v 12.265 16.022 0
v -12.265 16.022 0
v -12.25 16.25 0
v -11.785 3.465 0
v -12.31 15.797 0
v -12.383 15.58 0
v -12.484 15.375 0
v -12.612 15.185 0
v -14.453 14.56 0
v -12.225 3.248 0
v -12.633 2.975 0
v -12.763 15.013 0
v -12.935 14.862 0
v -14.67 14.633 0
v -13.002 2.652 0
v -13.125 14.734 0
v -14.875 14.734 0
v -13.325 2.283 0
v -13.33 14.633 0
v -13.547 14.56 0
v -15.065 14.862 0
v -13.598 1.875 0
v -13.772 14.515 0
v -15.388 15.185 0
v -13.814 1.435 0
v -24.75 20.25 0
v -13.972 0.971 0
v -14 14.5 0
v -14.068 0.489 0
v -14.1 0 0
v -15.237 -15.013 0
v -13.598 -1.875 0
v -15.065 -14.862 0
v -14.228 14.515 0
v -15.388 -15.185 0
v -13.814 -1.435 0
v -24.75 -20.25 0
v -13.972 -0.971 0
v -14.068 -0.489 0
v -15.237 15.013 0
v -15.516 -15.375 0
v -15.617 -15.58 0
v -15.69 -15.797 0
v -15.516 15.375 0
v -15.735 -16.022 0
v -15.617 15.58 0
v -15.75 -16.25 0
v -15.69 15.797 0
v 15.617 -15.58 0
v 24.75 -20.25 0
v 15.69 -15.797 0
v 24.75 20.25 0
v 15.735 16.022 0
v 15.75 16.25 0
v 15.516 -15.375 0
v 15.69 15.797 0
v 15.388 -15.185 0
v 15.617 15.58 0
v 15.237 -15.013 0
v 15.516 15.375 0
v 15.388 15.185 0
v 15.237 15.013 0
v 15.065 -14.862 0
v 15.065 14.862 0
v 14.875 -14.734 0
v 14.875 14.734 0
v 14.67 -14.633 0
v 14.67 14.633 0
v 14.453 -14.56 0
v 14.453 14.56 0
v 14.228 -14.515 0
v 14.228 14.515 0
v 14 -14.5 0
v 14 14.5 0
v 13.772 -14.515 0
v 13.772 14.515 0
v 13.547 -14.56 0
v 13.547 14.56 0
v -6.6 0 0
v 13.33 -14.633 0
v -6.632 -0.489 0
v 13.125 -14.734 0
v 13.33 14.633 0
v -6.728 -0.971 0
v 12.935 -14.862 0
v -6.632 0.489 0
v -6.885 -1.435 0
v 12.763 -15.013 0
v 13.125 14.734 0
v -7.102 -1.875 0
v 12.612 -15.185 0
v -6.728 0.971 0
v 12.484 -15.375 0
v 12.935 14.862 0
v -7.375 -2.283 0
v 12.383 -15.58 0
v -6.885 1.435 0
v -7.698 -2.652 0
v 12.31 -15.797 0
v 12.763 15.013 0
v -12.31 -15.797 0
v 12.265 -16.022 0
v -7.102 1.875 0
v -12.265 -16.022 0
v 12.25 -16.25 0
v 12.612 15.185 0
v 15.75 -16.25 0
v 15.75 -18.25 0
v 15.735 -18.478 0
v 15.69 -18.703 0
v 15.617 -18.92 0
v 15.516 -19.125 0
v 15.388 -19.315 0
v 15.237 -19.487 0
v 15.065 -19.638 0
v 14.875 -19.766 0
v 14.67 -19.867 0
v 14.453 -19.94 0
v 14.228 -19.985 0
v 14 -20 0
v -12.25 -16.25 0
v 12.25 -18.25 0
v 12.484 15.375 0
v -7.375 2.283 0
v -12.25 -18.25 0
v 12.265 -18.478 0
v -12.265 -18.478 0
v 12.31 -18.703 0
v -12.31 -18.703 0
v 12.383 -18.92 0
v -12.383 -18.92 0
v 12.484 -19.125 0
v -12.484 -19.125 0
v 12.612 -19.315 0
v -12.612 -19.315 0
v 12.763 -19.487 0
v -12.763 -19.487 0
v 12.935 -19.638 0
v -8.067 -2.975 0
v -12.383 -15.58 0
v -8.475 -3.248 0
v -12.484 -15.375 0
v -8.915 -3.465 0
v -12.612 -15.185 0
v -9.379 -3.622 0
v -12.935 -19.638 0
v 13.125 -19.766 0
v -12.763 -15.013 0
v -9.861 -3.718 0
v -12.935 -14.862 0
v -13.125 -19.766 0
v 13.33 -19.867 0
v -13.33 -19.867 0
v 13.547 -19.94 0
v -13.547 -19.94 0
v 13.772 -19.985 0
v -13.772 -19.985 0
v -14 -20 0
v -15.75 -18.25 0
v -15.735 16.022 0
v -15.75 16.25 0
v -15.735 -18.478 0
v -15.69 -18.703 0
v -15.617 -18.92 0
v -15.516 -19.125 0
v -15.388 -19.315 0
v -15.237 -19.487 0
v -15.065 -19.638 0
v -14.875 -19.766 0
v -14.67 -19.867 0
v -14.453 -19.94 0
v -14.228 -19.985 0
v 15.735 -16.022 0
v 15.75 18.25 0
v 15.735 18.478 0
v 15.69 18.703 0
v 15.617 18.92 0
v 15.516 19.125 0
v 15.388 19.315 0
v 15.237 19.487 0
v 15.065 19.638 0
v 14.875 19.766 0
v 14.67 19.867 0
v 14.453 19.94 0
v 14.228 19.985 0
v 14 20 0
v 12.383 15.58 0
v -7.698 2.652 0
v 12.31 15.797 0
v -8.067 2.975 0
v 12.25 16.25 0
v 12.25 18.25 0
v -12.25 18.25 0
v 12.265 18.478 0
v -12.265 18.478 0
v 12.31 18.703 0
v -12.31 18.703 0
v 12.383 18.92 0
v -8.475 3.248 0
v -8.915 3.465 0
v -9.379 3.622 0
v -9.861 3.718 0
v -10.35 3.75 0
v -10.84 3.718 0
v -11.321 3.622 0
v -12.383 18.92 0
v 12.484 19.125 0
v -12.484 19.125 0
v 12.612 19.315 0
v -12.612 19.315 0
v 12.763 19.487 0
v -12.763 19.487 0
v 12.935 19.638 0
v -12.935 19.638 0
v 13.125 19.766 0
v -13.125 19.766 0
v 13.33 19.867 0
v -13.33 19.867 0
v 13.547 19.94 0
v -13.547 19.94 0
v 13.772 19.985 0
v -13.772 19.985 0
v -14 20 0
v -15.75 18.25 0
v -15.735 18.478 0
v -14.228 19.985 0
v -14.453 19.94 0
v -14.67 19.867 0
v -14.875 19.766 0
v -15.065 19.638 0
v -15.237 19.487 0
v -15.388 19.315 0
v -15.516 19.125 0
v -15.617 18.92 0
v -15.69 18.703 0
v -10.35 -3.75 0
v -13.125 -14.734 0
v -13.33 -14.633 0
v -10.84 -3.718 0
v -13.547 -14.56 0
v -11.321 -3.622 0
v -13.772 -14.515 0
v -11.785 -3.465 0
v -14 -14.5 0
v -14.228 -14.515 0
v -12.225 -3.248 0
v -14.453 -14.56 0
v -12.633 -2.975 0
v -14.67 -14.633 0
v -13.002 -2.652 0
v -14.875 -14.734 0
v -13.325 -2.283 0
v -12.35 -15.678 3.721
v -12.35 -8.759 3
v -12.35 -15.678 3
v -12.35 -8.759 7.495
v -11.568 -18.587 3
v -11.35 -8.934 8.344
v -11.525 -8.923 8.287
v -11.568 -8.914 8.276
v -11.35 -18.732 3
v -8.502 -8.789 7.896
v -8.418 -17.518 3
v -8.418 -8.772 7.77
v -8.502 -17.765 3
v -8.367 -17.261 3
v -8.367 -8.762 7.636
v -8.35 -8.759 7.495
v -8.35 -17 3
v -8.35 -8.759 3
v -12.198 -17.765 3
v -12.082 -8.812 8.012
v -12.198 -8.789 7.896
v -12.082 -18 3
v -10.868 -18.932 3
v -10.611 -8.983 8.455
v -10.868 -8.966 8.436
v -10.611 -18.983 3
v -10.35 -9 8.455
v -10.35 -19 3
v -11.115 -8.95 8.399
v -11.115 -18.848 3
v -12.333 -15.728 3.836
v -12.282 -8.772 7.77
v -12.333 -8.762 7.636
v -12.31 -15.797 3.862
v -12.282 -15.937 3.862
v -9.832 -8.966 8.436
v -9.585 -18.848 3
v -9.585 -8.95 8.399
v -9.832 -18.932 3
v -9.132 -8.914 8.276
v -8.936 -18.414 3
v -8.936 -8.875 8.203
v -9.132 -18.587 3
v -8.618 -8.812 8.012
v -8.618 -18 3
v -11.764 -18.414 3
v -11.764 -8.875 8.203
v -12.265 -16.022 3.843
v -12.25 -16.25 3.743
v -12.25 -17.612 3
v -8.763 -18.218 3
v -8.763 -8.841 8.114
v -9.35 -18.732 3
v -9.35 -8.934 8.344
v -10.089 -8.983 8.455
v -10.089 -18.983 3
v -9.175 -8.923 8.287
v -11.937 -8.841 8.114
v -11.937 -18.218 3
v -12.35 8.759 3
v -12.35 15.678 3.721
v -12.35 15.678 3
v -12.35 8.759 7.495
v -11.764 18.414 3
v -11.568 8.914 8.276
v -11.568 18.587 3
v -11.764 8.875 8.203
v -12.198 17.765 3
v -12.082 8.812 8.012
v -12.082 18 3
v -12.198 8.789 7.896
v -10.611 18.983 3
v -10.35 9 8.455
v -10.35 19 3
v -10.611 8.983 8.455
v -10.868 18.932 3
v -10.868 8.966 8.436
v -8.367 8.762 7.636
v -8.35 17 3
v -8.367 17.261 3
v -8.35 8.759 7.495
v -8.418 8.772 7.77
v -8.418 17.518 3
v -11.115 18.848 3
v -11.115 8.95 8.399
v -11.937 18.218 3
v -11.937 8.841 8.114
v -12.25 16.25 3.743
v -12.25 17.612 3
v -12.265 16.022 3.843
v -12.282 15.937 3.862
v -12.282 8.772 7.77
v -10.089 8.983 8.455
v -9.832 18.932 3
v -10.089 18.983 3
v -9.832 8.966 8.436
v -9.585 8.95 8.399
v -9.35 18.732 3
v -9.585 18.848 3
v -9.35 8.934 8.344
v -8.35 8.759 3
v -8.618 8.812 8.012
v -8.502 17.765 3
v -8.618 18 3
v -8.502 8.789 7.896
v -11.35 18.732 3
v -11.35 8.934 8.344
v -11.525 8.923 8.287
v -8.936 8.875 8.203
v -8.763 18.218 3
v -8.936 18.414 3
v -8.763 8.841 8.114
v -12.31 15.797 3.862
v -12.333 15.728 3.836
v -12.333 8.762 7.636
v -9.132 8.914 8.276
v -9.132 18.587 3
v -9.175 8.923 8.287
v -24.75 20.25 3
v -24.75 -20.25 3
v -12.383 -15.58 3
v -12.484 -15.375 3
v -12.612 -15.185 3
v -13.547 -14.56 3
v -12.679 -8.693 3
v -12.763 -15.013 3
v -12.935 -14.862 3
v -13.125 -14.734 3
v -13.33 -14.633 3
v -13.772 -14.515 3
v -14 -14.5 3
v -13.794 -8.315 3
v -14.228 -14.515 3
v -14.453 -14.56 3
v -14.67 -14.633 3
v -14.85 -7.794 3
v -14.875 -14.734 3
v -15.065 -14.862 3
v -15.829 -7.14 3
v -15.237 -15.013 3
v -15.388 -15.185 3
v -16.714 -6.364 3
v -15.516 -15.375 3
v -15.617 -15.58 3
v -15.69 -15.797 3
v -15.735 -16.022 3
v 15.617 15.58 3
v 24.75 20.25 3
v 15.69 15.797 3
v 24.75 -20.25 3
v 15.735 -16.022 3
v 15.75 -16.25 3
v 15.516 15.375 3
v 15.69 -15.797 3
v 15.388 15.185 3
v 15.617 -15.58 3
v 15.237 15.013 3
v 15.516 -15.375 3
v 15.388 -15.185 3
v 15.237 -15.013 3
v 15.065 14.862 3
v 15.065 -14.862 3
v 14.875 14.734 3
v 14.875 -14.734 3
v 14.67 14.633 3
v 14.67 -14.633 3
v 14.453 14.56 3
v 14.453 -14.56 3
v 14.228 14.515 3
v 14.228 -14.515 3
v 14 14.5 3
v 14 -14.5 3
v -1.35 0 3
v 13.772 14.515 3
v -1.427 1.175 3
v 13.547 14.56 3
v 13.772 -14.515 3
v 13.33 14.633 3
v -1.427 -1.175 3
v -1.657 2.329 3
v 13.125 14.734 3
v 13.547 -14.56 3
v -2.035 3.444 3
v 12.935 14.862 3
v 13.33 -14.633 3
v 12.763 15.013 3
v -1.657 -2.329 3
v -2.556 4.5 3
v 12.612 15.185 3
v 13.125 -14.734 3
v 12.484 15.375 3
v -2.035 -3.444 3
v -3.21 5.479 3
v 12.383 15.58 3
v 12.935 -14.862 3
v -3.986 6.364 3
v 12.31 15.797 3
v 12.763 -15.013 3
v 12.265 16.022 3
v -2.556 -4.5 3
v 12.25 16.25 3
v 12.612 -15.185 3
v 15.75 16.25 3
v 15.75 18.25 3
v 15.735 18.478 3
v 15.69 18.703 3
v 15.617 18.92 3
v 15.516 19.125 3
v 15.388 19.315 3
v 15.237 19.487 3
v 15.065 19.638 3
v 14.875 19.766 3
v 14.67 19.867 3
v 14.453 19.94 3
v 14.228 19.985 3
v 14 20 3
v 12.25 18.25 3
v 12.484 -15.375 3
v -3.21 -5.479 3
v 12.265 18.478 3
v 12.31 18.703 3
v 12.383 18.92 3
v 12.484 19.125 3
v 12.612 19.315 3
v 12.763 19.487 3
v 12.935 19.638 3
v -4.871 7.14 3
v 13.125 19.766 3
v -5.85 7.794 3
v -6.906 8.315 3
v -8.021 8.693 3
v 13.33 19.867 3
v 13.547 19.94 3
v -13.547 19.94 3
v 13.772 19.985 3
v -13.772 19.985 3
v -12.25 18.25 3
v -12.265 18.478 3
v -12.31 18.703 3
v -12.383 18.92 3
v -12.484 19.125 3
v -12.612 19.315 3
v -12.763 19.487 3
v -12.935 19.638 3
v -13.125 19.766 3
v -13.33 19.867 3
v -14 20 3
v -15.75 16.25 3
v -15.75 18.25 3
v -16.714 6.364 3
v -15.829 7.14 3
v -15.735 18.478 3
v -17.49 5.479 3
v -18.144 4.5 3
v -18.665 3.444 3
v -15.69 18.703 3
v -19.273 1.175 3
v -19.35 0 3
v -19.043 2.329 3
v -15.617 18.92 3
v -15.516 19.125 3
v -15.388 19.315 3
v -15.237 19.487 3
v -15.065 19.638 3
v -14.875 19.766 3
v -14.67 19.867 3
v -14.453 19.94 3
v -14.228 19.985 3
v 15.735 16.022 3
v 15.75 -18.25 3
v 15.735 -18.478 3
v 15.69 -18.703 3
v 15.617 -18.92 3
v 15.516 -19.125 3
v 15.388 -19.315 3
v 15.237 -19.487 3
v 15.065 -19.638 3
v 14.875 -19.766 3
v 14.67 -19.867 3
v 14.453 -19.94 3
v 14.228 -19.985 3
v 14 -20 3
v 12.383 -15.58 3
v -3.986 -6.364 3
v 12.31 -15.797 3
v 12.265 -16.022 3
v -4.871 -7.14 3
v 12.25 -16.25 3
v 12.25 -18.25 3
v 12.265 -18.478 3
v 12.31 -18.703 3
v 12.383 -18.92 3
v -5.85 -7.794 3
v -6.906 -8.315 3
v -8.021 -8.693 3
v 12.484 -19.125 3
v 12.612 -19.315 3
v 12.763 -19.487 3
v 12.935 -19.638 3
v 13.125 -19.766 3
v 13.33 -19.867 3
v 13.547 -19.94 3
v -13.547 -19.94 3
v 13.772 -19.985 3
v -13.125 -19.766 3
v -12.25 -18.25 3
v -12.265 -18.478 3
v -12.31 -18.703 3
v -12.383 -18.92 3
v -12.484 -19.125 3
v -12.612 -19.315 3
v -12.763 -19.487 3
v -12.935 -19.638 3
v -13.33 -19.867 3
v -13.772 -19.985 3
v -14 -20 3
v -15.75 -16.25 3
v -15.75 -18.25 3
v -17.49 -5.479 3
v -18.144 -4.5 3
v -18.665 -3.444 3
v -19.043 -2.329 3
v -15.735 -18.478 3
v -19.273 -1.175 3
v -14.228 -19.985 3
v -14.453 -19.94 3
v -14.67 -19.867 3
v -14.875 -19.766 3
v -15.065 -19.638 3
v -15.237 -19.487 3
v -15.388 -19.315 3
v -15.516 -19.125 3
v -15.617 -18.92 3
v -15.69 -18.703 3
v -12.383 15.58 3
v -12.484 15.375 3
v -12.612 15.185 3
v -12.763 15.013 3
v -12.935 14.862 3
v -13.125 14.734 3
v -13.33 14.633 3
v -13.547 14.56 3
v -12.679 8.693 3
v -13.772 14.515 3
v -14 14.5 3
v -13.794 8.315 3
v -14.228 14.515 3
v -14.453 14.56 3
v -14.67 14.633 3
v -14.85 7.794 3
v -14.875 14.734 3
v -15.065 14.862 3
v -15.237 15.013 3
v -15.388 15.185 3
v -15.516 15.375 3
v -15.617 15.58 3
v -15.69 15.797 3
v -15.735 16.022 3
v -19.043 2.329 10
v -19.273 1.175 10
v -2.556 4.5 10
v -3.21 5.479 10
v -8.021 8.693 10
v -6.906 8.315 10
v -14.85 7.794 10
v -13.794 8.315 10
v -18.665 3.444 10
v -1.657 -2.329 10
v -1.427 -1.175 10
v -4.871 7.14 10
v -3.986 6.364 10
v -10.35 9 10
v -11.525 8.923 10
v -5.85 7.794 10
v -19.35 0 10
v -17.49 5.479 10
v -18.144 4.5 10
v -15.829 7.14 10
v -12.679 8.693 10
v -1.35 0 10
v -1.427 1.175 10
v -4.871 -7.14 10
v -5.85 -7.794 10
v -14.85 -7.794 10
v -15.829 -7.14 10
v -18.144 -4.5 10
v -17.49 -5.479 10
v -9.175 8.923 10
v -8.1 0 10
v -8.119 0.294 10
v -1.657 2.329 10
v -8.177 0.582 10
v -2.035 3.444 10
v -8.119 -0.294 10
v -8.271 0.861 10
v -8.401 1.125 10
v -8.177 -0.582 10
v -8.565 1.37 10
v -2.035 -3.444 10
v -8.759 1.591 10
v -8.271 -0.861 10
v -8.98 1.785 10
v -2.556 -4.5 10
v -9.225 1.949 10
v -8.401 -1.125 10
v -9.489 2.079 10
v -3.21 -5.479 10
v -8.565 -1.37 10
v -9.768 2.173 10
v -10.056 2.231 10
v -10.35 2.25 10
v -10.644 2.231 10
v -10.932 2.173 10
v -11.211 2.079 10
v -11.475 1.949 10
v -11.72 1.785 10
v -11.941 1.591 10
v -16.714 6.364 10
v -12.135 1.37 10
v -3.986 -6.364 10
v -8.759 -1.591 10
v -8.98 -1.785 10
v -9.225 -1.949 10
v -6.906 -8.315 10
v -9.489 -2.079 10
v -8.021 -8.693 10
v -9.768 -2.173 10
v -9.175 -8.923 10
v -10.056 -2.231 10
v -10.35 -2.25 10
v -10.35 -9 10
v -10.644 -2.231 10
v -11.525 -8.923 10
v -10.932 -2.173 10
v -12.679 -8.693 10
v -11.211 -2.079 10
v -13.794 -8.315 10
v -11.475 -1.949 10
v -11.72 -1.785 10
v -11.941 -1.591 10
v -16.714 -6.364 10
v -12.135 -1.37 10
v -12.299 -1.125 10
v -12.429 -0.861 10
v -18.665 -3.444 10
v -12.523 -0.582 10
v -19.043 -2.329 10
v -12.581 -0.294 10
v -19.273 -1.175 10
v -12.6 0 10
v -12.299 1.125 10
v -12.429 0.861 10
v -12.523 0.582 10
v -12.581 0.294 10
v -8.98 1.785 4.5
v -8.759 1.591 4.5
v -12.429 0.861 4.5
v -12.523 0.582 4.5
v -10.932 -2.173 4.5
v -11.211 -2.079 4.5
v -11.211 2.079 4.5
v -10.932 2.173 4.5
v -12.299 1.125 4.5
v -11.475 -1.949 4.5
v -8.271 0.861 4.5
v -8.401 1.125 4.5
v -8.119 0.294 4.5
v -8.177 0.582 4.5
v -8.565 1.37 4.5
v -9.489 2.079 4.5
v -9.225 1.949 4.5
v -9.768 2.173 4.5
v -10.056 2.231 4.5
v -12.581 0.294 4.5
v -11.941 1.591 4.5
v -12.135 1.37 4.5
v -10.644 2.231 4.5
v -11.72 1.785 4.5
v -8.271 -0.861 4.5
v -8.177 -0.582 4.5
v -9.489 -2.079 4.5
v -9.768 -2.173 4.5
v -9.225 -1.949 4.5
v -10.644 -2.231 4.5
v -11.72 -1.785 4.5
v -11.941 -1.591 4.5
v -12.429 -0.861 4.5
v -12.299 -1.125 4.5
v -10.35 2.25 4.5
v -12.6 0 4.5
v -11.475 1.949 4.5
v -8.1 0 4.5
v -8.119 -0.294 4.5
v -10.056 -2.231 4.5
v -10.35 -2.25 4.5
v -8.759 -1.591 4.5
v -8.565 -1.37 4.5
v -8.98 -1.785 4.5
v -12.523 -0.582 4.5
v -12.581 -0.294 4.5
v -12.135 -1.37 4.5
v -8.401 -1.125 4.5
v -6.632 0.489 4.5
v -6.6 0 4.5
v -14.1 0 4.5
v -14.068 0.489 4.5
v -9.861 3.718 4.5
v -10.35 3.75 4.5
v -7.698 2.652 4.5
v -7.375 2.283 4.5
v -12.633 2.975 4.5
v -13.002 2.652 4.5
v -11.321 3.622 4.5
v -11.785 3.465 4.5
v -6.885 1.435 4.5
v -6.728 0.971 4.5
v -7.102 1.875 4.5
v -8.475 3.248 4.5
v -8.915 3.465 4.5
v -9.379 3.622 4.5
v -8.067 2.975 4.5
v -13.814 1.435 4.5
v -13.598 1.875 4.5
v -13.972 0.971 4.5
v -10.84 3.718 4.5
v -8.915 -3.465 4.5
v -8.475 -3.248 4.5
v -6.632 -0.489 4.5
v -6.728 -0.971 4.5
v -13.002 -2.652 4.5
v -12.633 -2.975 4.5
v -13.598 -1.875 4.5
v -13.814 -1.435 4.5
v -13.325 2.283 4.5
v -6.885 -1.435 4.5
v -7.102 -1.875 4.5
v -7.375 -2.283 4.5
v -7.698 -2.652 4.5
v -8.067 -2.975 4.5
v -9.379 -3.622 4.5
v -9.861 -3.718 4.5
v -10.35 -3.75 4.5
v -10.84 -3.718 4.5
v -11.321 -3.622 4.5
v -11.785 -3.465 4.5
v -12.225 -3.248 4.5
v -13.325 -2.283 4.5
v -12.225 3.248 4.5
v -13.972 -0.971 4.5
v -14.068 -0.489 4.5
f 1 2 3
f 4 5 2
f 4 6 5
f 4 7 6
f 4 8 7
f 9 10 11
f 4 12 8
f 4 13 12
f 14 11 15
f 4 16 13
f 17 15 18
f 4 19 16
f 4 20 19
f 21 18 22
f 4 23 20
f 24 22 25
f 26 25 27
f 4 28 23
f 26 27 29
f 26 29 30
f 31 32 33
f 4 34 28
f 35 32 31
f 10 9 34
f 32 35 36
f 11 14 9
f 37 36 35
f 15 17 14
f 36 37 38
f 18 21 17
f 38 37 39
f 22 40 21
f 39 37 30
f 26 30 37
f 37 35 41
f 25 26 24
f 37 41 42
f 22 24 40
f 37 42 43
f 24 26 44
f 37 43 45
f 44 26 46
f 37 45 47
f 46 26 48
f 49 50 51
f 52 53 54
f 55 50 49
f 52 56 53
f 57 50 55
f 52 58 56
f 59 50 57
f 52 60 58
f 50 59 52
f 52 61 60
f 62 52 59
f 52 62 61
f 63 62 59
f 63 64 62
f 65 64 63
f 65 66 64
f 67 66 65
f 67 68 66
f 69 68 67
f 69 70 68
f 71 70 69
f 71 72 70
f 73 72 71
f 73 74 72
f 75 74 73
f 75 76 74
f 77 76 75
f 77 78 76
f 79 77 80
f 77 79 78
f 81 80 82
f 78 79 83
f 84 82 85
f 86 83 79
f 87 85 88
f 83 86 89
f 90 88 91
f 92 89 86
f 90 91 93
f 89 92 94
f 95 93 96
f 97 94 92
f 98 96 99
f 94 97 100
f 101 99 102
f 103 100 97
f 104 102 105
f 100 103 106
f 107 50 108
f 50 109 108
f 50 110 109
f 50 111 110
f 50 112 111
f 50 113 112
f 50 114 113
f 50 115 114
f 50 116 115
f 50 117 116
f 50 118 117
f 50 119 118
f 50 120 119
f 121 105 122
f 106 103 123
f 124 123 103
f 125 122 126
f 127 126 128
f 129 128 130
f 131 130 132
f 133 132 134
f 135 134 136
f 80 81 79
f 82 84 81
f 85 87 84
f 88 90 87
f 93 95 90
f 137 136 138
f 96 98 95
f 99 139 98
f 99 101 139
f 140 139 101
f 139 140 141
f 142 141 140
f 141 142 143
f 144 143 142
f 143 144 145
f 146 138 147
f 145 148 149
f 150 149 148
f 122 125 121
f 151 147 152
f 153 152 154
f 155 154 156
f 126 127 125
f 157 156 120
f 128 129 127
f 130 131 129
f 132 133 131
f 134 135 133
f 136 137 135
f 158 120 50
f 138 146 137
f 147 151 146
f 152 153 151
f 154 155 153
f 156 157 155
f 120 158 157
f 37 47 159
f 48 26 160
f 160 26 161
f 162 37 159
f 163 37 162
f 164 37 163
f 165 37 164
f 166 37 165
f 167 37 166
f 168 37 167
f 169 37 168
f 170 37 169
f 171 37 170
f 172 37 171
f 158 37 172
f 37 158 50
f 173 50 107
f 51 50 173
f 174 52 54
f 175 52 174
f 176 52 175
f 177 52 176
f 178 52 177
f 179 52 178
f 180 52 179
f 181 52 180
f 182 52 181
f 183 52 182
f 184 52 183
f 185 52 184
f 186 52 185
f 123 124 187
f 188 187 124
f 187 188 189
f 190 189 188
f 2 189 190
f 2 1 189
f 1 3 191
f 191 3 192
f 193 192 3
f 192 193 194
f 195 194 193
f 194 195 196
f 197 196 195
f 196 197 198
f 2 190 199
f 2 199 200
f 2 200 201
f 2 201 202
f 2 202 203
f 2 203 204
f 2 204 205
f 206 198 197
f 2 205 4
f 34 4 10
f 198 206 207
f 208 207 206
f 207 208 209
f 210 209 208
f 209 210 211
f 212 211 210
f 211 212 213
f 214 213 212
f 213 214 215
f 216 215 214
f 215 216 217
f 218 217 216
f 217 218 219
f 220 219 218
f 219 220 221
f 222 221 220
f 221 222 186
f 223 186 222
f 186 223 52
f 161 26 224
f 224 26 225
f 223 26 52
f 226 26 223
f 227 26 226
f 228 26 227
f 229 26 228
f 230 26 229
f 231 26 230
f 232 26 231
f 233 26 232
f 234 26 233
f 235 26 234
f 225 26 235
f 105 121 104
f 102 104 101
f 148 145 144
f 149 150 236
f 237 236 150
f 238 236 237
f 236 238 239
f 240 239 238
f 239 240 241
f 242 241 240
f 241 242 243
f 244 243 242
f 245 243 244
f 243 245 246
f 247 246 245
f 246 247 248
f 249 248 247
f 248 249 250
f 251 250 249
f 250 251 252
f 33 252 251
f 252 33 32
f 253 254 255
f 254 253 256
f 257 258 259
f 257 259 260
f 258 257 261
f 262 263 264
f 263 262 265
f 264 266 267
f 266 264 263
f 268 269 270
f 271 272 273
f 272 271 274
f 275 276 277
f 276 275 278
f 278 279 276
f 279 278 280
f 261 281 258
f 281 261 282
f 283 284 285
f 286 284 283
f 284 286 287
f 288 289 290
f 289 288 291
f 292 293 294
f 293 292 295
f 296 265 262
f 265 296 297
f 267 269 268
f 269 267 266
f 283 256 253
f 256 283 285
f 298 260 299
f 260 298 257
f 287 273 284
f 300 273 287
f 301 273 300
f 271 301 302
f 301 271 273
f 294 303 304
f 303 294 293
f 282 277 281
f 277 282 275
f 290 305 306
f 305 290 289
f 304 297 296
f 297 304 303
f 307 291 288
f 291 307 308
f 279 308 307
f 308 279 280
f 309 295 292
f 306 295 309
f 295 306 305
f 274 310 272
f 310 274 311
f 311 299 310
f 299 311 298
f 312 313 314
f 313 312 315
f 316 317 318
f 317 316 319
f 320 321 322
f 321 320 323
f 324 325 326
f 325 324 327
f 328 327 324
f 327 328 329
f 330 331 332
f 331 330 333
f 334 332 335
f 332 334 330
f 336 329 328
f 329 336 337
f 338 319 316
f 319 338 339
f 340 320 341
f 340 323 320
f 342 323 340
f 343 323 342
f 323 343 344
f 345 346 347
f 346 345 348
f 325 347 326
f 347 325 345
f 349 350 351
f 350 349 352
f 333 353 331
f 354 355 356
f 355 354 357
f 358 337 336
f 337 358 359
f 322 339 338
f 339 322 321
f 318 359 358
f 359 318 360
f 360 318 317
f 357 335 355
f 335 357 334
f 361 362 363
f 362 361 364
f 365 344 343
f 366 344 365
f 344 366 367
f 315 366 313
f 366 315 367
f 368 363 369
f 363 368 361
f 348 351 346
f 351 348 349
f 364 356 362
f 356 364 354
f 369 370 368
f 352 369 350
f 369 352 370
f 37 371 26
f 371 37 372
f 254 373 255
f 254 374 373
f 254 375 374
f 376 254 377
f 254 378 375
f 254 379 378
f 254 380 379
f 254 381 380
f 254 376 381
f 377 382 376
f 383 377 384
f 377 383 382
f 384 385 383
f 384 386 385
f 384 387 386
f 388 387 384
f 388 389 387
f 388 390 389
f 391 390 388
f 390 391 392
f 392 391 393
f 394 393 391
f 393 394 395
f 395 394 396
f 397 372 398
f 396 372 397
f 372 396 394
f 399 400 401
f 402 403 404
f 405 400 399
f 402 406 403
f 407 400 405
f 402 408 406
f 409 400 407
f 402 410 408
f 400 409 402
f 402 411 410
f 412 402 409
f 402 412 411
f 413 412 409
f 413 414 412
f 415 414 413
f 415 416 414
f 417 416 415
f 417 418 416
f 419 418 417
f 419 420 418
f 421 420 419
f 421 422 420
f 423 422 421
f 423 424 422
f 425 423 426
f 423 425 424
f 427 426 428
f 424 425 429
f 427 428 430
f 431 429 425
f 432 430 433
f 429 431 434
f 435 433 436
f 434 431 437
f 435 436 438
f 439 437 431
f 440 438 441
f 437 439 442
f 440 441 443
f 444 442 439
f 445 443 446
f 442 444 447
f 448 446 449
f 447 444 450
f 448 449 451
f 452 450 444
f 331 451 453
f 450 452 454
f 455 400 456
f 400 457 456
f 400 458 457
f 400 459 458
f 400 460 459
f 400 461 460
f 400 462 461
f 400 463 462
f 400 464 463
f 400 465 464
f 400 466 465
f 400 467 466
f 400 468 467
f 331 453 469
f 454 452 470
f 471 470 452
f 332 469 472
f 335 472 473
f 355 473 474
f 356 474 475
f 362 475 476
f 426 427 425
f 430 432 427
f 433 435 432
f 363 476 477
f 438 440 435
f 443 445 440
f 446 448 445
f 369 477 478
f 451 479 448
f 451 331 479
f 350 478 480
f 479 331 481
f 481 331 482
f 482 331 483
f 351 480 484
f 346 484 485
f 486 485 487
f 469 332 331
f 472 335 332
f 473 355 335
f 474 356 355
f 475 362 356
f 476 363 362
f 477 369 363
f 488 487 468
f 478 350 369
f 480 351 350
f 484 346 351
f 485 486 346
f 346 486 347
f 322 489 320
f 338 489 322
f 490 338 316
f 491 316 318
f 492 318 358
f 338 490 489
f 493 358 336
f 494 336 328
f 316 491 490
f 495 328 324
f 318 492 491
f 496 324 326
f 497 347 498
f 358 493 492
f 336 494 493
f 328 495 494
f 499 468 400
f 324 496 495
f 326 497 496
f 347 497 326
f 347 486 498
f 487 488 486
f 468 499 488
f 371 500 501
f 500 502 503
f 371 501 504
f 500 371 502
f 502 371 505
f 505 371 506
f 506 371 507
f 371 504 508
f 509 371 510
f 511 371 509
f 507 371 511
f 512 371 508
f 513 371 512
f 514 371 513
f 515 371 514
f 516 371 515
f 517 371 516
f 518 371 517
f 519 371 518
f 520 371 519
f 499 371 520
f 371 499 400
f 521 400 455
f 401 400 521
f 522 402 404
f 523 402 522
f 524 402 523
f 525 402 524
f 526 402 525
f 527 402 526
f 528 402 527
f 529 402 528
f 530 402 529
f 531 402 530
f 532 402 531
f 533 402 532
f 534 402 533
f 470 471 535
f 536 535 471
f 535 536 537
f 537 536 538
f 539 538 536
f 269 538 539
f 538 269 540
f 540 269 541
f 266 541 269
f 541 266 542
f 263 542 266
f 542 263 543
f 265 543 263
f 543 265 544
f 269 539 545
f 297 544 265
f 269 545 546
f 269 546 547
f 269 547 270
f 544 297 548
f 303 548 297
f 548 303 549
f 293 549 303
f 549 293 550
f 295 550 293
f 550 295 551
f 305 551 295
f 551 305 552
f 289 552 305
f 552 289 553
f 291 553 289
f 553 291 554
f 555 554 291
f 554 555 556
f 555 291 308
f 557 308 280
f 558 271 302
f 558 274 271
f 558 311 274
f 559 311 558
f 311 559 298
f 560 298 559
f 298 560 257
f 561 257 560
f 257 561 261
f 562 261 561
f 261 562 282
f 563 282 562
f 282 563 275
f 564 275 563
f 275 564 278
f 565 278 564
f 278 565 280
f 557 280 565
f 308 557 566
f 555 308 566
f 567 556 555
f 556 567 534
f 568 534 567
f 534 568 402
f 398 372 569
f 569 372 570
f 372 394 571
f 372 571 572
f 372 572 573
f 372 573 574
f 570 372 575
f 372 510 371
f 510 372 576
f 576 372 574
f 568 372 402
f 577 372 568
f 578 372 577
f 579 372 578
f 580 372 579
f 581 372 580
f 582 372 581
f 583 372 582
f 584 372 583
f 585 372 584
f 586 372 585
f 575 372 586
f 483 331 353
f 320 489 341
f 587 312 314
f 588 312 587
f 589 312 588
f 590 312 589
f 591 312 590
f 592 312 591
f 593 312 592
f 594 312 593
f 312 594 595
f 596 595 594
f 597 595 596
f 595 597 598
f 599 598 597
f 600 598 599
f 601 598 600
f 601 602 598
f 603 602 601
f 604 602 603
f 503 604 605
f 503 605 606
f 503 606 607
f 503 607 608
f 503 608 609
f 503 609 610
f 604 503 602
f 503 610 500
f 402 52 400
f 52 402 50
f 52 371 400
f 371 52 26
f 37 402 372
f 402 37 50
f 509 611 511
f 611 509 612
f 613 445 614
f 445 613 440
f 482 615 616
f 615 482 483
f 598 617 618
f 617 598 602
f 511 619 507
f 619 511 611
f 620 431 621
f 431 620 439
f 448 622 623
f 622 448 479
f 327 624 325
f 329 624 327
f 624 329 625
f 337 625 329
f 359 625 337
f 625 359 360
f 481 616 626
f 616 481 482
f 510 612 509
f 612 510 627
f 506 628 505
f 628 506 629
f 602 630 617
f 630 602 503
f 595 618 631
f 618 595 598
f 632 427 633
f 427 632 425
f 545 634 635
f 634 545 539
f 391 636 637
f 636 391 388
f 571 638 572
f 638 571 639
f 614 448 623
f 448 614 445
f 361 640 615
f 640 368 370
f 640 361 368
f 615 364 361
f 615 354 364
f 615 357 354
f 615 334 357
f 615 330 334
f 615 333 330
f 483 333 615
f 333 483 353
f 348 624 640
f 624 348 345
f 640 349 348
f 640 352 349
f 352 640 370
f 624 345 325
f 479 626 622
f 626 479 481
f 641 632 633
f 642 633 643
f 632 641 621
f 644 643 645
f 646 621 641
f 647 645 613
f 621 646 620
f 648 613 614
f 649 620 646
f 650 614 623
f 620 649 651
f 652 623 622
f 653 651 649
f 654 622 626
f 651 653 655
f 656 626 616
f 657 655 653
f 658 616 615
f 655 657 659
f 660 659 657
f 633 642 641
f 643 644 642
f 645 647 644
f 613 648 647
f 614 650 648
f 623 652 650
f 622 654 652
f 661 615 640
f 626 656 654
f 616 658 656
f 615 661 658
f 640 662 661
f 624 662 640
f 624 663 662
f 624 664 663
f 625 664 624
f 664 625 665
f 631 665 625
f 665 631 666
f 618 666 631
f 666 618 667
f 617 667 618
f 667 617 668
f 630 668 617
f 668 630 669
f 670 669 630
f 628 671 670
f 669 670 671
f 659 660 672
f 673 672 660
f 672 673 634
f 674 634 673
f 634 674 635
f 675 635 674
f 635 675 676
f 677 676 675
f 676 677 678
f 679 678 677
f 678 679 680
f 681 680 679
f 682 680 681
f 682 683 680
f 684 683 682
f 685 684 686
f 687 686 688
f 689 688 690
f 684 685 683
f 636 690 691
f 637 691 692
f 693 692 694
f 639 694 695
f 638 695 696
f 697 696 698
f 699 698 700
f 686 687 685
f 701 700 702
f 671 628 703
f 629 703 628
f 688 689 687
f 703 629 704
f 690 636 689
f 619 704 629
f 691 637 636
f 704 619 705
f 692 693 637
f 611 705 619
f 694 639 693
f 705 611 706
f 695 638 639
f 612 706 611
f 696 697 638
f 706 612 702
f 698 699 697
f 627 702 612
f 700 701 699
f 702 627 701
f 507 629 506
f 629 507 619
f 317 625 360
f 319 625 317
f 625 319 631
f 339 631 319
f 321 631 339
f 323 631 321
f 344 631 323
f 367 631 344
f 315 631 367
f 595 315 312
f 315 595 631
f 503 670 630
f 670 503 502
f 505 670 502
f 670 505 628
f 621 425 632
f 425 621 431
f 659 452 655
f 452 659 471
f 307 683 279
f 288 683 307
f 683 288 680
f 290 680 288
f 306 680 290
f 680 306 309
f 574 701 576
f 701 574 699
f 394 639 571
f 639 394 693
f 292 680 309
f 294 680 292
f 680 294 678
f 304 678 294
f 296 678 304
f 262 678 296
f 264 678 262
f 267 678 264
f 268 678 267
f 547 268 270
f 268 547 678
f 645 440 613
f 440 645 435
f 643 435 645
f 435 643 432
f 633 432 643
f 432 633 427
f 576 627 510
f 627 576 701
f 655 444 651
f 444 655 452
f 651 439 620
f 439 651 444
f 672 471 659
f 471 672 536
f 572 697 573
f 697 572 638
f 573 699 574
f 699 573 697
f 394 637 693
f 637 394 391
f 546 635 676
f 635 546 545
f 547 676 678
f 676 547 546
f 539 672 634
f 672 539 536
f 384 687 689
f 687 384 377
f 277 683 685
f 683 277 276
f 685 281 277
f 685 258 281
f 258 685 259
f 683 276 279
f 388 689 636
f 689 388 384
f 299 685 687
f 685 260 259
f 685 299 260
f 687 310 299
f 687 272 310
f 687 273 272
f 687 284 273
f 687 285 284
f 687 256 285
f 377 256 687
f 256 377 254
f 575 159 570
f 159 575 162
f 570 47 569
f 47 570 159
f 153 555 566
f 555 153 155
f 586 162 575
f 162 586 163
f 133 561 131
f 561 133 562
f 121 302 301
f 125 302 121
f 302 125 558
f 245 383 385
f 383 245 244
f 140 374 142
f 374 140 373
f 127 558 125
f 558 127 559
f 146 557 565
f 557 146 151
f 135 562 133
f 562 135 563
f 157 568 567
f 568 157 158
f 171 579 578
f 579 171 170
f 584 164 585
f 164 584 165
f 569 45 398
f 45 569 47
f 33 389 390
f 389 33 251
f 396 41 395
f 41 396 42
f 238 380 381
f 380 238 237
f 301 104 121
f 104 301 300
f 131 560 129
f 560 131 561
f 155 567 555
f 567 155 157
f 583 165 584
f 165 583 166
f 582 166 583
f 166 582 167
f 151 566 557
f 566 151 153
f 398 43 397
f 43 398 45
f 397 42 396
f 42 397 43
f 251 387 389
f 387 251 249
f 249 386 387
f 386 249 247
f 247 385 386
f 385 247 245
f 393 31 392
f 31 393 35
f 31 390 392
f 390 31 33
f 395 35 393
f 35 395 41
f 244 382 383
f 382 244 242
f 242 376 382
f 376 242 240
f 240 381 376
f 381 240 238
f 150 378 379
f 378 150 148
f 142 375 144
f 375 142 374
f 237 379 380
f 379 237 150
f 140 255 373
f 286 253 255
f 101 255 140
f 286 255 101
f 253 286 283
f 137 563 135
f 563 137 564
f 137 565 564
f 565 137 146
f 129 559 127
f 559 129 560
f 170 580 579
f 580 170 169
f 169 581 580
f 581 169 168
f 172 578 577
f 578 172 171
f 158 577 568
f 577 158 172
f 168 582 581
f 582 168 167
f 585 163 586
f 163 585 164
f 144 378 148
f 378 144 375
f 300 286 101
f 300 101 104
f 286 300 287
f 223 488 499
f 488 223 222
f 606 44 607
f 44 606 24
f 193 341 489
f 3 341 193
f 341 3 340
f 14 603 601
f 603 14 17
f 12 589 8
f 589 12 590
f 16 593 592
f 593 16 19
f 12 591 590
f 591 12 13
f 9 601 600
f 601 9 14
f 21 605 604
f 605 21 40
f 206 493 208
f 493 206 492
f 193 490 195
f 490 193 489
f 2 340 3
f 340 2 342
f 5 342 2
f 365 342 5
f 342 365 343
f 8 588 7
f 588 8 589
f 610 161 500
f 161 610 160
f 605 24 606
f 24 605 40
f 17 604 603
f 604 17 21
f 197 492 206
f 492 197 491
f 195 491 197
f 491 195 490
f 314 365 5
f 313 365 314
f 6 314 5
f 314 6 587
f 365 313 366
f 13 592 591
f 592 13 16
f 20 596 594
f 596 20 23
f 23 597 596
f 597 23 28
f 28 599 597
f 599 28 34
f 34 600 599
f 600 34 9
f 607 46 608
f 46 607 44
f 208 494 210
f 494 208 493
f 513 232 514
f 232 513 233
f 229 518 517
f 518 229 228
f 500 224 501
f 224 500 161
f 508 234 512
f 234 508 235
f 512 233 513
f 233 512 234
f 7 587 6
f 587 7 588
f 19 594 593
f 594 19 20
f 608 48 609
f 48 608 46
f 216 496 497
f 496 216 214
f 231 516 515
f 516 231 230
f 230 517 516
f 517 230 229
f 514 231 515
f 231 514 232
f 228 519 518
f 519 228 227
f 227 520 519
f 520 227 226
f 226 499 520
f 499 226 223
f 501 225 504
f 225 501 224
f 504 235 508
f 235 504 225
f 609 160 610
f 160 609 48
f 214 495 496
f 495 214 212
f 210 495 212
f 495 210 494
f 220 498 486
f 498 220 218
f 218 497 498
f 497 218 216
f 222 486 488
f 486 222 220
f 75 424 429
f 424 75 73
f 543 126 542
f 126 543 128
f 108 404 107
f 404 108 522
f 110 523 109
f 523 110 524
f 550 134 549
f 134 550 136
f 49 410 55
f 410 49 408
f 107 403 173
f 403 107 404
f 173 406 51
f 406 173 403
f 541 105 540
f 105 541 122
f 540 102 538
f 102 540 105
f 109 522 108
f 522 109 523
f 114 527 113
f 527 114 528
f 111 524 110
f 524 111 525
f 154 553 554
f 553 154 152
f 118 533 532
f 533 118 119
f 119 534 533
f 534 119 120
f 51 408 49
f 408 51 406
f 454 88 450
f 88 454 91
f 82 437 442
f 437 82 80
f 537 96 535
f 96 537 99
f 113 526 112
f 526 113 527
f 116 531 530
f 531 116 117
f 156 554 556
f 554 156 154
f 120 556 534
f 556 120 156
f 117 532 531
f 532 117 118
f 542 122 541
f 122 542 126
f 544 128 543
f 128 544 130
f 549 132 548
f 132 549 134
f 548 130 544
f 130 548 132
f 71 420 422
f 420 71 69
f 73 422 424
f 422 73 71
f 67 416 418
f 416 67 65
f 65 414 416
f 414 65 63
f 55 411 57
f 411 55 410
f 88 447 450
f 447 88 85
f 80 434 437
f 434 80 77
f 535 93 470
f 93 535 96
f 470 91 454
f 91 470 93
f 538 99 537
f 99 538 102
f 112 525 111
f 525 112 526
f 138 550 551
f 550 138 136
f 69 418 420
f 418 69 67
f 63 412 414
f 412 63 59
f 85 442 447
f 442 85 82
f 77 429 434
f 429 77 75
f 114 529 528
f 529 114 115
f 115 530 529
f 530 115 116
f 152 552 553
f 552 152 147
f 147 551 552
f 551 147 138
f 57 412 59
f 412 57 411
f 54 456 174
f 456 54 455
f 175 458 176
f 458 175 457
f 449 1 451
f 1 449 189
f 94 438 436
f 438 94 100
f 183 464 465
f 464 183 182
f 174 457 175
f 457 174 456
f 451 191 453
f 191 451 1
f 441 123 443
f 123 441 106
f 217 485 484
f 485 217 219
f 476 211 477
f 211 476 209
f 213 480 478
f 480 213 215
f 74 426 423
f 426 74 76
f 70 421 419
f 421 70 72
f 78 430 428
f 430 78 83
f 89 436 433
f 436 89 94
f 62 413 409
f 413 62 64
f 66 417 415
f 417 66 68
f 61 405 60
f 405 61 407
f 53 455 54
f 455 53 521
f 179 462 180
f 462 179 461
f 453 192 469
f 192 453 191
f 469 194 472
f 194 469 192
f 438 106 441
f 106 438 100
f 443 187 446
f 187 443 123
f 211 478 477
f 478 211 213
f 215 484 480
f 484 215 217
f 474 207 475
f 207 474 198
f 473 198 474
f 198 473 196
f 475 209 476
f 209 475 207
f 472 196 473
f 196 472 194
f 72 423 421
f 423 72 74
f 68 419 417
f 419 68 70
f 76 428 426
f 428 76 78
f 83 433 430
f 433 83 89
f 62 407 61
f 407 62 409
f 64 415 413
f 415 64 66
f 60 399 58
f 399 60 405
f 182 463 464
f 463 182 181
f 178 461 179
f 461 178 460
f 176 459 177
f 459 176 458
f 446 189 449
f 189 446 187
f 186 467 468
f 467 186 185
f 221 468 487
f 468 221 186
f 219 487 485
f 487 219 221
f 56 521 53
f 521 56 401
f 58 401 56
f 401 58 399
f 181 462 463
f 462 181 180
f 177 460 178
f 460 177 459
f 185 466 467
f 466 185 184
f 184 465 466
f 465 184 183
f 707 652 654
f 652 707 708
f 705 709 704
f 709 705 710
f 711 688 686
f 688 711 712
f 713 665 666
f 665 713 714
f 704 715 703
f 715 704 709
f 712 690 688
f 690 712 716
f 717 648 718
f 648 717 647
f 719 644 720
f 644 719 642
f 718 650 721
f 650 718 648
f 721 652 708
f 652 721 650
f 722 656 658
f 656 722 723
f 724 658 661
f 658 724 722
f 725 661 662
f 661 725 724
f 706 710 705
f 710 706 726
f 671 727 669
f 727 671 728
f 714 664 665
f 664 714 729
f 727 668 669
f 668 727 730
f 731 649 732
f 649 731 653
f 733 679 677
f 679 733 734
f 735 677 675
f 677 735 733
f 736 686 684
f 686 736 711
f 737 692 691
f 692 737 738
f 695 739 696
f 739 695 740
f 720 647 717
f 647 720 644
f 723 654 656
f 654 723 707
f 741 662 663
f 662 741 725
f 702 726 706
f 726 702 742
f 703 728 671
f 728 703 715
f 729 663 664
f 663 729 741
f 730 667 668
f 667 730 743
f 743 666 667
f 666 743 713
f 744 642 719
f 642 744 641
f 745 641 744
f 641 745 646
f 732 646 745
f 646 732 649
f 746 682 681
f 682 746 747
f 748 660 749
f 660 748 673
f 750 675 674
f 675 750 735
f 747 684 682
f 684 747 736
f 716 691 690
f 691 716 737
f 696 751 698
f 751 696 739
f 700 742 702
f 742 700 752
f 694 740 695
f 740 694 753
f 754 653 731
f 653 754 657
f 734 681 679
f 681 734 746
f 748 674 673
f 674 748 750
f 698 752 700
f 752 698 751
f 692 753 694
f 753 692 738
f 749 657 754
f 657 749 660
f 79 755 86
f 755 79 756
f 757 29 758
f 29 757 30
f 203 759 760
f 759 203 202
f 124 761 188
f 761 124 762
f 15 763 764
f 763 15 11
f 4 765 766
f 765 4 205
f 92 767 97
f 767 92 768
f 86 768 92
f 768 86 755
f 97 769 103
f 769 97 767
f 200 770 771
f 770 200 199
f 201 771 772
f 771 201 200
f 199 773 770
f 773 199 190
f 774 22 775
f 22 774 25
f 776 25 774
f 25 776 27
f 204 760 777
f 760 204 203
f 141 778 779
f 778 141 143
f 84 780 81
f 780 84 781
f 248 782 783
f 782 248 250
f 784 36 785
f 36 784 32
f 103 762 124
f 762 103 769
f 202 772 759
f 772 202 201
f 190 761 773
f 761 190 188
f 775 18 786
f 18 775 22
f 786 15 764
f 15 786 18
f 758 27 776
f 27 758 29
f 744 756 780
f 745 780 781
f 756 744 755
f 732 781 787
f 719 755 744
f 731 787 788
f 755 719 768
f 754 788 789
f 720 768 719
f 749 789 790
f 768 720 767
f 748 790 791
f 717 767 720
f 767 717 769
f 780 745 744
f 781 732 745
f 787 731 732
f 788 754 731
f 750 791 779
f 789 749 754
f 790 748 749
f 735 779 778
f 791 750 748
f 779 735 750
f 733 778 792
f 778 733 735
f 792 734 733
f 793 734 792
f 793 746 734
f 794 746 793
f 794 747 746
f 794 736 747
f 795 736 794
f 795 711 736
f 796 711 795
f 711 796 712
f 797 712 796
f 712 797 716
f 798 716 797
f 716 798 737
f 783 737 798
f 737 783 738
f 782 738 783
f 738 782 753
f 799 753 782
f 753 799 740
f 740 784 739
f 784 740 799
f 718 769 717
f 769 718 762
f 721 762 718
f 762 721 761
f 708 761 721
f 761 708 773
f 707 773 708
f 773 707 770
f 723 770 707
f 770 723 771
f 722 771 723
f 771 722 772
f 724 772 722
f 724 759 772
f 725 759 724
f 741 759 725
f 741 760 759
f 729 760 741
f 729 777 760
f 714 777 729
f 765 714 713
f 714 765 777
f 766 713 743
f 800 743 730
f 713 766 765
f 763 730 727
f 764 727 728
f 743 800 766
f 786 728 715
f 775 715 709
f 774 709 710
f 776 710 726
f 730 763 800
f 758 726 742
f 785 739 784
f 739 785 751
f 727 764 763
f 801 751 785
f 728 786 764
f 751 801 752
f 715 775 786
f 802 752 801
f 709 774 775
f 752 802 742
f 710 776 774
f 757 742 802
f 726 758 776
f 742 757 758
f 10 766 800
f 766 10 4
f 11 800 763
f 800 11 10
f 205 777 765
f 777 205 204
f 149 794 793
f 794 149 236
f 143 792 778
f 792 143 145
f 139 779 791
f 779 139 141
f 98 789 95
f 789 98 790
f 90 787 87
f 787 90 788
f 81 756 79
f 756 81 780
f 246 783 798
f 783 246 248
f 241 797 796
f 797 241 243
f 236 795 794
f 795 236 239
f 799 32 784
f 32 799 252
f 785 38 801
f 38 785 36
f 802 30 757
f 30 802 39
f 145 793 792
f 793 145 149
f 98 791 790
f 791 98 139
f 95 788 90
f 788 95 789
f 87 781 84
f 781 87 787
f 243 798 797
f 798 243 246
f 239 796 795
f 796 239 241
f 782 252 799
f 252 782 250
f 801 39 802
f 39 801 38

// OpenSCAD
// file: hobby-joint-common.scad
// Rev A local joint datum: rotation axis at x=y=0, axial direction +z.
$fn=48;
shaft_x=-10.35;
horn_z=50;
front_t=5;
rear_top=-16.2;
rear_t=7;
bridge_r=58;
bridge_length=horn_z-rear_top;
bridge_pitch=14;
seat_d=13.2;
seat_depth=5.2;
module bridge_holes(h) {
    for(y=[-bridge_pitch/2,bridge_pitch/2])
        translate([-bridge_r,y,-1]) cylinder(d=3.5,h=h+2);
}
module arm_blank(t) {
    linear_extrude(t) hull() {
        circle(d=32);
        translate([-bridge_r,0]) square([12,26],center=true);
    }
}
module arm_window(t) {
    translate([0,0,-1]) linear_extrude(t+2) hull()
        for(x=[-40,-25]) translate([x,0]) circle(d=10);
}
// main file
include <hobby-joint-common.scad>
// Print base down; assembly flips this below the existing cradle floor.
module joint_support() {
    difference() {
        union() {
            translate([-24.75,-20.25,0]) cube([49.5,40.5,3]);
            translate([shaft_x,0,0]) cylinder(d=18,h=10);
            for(y=[-1,1]) hull() {
                translate([shaft_x,y*6,0]) cylinder(d=4,h=9);
                translate([shaft_x,y*17,0]) cylinder(d=4,h=3);
            }
        }
        translate([shaft_x,0,-1]) cylinder(d=4.5,h=12);
        // Head captured between support and cradle floor after assembly.
        translate([shaft_x,0,-0.1]) cylinder(d=7.5,h=4.6);
        for(x=[-14,14],y=[-17.25,17.25]) hull()
            for(dy=[-1,1]) translate([x,y+dy,-1]) cylinder(d=3.5,h=12);
    }
}
joint_support();
